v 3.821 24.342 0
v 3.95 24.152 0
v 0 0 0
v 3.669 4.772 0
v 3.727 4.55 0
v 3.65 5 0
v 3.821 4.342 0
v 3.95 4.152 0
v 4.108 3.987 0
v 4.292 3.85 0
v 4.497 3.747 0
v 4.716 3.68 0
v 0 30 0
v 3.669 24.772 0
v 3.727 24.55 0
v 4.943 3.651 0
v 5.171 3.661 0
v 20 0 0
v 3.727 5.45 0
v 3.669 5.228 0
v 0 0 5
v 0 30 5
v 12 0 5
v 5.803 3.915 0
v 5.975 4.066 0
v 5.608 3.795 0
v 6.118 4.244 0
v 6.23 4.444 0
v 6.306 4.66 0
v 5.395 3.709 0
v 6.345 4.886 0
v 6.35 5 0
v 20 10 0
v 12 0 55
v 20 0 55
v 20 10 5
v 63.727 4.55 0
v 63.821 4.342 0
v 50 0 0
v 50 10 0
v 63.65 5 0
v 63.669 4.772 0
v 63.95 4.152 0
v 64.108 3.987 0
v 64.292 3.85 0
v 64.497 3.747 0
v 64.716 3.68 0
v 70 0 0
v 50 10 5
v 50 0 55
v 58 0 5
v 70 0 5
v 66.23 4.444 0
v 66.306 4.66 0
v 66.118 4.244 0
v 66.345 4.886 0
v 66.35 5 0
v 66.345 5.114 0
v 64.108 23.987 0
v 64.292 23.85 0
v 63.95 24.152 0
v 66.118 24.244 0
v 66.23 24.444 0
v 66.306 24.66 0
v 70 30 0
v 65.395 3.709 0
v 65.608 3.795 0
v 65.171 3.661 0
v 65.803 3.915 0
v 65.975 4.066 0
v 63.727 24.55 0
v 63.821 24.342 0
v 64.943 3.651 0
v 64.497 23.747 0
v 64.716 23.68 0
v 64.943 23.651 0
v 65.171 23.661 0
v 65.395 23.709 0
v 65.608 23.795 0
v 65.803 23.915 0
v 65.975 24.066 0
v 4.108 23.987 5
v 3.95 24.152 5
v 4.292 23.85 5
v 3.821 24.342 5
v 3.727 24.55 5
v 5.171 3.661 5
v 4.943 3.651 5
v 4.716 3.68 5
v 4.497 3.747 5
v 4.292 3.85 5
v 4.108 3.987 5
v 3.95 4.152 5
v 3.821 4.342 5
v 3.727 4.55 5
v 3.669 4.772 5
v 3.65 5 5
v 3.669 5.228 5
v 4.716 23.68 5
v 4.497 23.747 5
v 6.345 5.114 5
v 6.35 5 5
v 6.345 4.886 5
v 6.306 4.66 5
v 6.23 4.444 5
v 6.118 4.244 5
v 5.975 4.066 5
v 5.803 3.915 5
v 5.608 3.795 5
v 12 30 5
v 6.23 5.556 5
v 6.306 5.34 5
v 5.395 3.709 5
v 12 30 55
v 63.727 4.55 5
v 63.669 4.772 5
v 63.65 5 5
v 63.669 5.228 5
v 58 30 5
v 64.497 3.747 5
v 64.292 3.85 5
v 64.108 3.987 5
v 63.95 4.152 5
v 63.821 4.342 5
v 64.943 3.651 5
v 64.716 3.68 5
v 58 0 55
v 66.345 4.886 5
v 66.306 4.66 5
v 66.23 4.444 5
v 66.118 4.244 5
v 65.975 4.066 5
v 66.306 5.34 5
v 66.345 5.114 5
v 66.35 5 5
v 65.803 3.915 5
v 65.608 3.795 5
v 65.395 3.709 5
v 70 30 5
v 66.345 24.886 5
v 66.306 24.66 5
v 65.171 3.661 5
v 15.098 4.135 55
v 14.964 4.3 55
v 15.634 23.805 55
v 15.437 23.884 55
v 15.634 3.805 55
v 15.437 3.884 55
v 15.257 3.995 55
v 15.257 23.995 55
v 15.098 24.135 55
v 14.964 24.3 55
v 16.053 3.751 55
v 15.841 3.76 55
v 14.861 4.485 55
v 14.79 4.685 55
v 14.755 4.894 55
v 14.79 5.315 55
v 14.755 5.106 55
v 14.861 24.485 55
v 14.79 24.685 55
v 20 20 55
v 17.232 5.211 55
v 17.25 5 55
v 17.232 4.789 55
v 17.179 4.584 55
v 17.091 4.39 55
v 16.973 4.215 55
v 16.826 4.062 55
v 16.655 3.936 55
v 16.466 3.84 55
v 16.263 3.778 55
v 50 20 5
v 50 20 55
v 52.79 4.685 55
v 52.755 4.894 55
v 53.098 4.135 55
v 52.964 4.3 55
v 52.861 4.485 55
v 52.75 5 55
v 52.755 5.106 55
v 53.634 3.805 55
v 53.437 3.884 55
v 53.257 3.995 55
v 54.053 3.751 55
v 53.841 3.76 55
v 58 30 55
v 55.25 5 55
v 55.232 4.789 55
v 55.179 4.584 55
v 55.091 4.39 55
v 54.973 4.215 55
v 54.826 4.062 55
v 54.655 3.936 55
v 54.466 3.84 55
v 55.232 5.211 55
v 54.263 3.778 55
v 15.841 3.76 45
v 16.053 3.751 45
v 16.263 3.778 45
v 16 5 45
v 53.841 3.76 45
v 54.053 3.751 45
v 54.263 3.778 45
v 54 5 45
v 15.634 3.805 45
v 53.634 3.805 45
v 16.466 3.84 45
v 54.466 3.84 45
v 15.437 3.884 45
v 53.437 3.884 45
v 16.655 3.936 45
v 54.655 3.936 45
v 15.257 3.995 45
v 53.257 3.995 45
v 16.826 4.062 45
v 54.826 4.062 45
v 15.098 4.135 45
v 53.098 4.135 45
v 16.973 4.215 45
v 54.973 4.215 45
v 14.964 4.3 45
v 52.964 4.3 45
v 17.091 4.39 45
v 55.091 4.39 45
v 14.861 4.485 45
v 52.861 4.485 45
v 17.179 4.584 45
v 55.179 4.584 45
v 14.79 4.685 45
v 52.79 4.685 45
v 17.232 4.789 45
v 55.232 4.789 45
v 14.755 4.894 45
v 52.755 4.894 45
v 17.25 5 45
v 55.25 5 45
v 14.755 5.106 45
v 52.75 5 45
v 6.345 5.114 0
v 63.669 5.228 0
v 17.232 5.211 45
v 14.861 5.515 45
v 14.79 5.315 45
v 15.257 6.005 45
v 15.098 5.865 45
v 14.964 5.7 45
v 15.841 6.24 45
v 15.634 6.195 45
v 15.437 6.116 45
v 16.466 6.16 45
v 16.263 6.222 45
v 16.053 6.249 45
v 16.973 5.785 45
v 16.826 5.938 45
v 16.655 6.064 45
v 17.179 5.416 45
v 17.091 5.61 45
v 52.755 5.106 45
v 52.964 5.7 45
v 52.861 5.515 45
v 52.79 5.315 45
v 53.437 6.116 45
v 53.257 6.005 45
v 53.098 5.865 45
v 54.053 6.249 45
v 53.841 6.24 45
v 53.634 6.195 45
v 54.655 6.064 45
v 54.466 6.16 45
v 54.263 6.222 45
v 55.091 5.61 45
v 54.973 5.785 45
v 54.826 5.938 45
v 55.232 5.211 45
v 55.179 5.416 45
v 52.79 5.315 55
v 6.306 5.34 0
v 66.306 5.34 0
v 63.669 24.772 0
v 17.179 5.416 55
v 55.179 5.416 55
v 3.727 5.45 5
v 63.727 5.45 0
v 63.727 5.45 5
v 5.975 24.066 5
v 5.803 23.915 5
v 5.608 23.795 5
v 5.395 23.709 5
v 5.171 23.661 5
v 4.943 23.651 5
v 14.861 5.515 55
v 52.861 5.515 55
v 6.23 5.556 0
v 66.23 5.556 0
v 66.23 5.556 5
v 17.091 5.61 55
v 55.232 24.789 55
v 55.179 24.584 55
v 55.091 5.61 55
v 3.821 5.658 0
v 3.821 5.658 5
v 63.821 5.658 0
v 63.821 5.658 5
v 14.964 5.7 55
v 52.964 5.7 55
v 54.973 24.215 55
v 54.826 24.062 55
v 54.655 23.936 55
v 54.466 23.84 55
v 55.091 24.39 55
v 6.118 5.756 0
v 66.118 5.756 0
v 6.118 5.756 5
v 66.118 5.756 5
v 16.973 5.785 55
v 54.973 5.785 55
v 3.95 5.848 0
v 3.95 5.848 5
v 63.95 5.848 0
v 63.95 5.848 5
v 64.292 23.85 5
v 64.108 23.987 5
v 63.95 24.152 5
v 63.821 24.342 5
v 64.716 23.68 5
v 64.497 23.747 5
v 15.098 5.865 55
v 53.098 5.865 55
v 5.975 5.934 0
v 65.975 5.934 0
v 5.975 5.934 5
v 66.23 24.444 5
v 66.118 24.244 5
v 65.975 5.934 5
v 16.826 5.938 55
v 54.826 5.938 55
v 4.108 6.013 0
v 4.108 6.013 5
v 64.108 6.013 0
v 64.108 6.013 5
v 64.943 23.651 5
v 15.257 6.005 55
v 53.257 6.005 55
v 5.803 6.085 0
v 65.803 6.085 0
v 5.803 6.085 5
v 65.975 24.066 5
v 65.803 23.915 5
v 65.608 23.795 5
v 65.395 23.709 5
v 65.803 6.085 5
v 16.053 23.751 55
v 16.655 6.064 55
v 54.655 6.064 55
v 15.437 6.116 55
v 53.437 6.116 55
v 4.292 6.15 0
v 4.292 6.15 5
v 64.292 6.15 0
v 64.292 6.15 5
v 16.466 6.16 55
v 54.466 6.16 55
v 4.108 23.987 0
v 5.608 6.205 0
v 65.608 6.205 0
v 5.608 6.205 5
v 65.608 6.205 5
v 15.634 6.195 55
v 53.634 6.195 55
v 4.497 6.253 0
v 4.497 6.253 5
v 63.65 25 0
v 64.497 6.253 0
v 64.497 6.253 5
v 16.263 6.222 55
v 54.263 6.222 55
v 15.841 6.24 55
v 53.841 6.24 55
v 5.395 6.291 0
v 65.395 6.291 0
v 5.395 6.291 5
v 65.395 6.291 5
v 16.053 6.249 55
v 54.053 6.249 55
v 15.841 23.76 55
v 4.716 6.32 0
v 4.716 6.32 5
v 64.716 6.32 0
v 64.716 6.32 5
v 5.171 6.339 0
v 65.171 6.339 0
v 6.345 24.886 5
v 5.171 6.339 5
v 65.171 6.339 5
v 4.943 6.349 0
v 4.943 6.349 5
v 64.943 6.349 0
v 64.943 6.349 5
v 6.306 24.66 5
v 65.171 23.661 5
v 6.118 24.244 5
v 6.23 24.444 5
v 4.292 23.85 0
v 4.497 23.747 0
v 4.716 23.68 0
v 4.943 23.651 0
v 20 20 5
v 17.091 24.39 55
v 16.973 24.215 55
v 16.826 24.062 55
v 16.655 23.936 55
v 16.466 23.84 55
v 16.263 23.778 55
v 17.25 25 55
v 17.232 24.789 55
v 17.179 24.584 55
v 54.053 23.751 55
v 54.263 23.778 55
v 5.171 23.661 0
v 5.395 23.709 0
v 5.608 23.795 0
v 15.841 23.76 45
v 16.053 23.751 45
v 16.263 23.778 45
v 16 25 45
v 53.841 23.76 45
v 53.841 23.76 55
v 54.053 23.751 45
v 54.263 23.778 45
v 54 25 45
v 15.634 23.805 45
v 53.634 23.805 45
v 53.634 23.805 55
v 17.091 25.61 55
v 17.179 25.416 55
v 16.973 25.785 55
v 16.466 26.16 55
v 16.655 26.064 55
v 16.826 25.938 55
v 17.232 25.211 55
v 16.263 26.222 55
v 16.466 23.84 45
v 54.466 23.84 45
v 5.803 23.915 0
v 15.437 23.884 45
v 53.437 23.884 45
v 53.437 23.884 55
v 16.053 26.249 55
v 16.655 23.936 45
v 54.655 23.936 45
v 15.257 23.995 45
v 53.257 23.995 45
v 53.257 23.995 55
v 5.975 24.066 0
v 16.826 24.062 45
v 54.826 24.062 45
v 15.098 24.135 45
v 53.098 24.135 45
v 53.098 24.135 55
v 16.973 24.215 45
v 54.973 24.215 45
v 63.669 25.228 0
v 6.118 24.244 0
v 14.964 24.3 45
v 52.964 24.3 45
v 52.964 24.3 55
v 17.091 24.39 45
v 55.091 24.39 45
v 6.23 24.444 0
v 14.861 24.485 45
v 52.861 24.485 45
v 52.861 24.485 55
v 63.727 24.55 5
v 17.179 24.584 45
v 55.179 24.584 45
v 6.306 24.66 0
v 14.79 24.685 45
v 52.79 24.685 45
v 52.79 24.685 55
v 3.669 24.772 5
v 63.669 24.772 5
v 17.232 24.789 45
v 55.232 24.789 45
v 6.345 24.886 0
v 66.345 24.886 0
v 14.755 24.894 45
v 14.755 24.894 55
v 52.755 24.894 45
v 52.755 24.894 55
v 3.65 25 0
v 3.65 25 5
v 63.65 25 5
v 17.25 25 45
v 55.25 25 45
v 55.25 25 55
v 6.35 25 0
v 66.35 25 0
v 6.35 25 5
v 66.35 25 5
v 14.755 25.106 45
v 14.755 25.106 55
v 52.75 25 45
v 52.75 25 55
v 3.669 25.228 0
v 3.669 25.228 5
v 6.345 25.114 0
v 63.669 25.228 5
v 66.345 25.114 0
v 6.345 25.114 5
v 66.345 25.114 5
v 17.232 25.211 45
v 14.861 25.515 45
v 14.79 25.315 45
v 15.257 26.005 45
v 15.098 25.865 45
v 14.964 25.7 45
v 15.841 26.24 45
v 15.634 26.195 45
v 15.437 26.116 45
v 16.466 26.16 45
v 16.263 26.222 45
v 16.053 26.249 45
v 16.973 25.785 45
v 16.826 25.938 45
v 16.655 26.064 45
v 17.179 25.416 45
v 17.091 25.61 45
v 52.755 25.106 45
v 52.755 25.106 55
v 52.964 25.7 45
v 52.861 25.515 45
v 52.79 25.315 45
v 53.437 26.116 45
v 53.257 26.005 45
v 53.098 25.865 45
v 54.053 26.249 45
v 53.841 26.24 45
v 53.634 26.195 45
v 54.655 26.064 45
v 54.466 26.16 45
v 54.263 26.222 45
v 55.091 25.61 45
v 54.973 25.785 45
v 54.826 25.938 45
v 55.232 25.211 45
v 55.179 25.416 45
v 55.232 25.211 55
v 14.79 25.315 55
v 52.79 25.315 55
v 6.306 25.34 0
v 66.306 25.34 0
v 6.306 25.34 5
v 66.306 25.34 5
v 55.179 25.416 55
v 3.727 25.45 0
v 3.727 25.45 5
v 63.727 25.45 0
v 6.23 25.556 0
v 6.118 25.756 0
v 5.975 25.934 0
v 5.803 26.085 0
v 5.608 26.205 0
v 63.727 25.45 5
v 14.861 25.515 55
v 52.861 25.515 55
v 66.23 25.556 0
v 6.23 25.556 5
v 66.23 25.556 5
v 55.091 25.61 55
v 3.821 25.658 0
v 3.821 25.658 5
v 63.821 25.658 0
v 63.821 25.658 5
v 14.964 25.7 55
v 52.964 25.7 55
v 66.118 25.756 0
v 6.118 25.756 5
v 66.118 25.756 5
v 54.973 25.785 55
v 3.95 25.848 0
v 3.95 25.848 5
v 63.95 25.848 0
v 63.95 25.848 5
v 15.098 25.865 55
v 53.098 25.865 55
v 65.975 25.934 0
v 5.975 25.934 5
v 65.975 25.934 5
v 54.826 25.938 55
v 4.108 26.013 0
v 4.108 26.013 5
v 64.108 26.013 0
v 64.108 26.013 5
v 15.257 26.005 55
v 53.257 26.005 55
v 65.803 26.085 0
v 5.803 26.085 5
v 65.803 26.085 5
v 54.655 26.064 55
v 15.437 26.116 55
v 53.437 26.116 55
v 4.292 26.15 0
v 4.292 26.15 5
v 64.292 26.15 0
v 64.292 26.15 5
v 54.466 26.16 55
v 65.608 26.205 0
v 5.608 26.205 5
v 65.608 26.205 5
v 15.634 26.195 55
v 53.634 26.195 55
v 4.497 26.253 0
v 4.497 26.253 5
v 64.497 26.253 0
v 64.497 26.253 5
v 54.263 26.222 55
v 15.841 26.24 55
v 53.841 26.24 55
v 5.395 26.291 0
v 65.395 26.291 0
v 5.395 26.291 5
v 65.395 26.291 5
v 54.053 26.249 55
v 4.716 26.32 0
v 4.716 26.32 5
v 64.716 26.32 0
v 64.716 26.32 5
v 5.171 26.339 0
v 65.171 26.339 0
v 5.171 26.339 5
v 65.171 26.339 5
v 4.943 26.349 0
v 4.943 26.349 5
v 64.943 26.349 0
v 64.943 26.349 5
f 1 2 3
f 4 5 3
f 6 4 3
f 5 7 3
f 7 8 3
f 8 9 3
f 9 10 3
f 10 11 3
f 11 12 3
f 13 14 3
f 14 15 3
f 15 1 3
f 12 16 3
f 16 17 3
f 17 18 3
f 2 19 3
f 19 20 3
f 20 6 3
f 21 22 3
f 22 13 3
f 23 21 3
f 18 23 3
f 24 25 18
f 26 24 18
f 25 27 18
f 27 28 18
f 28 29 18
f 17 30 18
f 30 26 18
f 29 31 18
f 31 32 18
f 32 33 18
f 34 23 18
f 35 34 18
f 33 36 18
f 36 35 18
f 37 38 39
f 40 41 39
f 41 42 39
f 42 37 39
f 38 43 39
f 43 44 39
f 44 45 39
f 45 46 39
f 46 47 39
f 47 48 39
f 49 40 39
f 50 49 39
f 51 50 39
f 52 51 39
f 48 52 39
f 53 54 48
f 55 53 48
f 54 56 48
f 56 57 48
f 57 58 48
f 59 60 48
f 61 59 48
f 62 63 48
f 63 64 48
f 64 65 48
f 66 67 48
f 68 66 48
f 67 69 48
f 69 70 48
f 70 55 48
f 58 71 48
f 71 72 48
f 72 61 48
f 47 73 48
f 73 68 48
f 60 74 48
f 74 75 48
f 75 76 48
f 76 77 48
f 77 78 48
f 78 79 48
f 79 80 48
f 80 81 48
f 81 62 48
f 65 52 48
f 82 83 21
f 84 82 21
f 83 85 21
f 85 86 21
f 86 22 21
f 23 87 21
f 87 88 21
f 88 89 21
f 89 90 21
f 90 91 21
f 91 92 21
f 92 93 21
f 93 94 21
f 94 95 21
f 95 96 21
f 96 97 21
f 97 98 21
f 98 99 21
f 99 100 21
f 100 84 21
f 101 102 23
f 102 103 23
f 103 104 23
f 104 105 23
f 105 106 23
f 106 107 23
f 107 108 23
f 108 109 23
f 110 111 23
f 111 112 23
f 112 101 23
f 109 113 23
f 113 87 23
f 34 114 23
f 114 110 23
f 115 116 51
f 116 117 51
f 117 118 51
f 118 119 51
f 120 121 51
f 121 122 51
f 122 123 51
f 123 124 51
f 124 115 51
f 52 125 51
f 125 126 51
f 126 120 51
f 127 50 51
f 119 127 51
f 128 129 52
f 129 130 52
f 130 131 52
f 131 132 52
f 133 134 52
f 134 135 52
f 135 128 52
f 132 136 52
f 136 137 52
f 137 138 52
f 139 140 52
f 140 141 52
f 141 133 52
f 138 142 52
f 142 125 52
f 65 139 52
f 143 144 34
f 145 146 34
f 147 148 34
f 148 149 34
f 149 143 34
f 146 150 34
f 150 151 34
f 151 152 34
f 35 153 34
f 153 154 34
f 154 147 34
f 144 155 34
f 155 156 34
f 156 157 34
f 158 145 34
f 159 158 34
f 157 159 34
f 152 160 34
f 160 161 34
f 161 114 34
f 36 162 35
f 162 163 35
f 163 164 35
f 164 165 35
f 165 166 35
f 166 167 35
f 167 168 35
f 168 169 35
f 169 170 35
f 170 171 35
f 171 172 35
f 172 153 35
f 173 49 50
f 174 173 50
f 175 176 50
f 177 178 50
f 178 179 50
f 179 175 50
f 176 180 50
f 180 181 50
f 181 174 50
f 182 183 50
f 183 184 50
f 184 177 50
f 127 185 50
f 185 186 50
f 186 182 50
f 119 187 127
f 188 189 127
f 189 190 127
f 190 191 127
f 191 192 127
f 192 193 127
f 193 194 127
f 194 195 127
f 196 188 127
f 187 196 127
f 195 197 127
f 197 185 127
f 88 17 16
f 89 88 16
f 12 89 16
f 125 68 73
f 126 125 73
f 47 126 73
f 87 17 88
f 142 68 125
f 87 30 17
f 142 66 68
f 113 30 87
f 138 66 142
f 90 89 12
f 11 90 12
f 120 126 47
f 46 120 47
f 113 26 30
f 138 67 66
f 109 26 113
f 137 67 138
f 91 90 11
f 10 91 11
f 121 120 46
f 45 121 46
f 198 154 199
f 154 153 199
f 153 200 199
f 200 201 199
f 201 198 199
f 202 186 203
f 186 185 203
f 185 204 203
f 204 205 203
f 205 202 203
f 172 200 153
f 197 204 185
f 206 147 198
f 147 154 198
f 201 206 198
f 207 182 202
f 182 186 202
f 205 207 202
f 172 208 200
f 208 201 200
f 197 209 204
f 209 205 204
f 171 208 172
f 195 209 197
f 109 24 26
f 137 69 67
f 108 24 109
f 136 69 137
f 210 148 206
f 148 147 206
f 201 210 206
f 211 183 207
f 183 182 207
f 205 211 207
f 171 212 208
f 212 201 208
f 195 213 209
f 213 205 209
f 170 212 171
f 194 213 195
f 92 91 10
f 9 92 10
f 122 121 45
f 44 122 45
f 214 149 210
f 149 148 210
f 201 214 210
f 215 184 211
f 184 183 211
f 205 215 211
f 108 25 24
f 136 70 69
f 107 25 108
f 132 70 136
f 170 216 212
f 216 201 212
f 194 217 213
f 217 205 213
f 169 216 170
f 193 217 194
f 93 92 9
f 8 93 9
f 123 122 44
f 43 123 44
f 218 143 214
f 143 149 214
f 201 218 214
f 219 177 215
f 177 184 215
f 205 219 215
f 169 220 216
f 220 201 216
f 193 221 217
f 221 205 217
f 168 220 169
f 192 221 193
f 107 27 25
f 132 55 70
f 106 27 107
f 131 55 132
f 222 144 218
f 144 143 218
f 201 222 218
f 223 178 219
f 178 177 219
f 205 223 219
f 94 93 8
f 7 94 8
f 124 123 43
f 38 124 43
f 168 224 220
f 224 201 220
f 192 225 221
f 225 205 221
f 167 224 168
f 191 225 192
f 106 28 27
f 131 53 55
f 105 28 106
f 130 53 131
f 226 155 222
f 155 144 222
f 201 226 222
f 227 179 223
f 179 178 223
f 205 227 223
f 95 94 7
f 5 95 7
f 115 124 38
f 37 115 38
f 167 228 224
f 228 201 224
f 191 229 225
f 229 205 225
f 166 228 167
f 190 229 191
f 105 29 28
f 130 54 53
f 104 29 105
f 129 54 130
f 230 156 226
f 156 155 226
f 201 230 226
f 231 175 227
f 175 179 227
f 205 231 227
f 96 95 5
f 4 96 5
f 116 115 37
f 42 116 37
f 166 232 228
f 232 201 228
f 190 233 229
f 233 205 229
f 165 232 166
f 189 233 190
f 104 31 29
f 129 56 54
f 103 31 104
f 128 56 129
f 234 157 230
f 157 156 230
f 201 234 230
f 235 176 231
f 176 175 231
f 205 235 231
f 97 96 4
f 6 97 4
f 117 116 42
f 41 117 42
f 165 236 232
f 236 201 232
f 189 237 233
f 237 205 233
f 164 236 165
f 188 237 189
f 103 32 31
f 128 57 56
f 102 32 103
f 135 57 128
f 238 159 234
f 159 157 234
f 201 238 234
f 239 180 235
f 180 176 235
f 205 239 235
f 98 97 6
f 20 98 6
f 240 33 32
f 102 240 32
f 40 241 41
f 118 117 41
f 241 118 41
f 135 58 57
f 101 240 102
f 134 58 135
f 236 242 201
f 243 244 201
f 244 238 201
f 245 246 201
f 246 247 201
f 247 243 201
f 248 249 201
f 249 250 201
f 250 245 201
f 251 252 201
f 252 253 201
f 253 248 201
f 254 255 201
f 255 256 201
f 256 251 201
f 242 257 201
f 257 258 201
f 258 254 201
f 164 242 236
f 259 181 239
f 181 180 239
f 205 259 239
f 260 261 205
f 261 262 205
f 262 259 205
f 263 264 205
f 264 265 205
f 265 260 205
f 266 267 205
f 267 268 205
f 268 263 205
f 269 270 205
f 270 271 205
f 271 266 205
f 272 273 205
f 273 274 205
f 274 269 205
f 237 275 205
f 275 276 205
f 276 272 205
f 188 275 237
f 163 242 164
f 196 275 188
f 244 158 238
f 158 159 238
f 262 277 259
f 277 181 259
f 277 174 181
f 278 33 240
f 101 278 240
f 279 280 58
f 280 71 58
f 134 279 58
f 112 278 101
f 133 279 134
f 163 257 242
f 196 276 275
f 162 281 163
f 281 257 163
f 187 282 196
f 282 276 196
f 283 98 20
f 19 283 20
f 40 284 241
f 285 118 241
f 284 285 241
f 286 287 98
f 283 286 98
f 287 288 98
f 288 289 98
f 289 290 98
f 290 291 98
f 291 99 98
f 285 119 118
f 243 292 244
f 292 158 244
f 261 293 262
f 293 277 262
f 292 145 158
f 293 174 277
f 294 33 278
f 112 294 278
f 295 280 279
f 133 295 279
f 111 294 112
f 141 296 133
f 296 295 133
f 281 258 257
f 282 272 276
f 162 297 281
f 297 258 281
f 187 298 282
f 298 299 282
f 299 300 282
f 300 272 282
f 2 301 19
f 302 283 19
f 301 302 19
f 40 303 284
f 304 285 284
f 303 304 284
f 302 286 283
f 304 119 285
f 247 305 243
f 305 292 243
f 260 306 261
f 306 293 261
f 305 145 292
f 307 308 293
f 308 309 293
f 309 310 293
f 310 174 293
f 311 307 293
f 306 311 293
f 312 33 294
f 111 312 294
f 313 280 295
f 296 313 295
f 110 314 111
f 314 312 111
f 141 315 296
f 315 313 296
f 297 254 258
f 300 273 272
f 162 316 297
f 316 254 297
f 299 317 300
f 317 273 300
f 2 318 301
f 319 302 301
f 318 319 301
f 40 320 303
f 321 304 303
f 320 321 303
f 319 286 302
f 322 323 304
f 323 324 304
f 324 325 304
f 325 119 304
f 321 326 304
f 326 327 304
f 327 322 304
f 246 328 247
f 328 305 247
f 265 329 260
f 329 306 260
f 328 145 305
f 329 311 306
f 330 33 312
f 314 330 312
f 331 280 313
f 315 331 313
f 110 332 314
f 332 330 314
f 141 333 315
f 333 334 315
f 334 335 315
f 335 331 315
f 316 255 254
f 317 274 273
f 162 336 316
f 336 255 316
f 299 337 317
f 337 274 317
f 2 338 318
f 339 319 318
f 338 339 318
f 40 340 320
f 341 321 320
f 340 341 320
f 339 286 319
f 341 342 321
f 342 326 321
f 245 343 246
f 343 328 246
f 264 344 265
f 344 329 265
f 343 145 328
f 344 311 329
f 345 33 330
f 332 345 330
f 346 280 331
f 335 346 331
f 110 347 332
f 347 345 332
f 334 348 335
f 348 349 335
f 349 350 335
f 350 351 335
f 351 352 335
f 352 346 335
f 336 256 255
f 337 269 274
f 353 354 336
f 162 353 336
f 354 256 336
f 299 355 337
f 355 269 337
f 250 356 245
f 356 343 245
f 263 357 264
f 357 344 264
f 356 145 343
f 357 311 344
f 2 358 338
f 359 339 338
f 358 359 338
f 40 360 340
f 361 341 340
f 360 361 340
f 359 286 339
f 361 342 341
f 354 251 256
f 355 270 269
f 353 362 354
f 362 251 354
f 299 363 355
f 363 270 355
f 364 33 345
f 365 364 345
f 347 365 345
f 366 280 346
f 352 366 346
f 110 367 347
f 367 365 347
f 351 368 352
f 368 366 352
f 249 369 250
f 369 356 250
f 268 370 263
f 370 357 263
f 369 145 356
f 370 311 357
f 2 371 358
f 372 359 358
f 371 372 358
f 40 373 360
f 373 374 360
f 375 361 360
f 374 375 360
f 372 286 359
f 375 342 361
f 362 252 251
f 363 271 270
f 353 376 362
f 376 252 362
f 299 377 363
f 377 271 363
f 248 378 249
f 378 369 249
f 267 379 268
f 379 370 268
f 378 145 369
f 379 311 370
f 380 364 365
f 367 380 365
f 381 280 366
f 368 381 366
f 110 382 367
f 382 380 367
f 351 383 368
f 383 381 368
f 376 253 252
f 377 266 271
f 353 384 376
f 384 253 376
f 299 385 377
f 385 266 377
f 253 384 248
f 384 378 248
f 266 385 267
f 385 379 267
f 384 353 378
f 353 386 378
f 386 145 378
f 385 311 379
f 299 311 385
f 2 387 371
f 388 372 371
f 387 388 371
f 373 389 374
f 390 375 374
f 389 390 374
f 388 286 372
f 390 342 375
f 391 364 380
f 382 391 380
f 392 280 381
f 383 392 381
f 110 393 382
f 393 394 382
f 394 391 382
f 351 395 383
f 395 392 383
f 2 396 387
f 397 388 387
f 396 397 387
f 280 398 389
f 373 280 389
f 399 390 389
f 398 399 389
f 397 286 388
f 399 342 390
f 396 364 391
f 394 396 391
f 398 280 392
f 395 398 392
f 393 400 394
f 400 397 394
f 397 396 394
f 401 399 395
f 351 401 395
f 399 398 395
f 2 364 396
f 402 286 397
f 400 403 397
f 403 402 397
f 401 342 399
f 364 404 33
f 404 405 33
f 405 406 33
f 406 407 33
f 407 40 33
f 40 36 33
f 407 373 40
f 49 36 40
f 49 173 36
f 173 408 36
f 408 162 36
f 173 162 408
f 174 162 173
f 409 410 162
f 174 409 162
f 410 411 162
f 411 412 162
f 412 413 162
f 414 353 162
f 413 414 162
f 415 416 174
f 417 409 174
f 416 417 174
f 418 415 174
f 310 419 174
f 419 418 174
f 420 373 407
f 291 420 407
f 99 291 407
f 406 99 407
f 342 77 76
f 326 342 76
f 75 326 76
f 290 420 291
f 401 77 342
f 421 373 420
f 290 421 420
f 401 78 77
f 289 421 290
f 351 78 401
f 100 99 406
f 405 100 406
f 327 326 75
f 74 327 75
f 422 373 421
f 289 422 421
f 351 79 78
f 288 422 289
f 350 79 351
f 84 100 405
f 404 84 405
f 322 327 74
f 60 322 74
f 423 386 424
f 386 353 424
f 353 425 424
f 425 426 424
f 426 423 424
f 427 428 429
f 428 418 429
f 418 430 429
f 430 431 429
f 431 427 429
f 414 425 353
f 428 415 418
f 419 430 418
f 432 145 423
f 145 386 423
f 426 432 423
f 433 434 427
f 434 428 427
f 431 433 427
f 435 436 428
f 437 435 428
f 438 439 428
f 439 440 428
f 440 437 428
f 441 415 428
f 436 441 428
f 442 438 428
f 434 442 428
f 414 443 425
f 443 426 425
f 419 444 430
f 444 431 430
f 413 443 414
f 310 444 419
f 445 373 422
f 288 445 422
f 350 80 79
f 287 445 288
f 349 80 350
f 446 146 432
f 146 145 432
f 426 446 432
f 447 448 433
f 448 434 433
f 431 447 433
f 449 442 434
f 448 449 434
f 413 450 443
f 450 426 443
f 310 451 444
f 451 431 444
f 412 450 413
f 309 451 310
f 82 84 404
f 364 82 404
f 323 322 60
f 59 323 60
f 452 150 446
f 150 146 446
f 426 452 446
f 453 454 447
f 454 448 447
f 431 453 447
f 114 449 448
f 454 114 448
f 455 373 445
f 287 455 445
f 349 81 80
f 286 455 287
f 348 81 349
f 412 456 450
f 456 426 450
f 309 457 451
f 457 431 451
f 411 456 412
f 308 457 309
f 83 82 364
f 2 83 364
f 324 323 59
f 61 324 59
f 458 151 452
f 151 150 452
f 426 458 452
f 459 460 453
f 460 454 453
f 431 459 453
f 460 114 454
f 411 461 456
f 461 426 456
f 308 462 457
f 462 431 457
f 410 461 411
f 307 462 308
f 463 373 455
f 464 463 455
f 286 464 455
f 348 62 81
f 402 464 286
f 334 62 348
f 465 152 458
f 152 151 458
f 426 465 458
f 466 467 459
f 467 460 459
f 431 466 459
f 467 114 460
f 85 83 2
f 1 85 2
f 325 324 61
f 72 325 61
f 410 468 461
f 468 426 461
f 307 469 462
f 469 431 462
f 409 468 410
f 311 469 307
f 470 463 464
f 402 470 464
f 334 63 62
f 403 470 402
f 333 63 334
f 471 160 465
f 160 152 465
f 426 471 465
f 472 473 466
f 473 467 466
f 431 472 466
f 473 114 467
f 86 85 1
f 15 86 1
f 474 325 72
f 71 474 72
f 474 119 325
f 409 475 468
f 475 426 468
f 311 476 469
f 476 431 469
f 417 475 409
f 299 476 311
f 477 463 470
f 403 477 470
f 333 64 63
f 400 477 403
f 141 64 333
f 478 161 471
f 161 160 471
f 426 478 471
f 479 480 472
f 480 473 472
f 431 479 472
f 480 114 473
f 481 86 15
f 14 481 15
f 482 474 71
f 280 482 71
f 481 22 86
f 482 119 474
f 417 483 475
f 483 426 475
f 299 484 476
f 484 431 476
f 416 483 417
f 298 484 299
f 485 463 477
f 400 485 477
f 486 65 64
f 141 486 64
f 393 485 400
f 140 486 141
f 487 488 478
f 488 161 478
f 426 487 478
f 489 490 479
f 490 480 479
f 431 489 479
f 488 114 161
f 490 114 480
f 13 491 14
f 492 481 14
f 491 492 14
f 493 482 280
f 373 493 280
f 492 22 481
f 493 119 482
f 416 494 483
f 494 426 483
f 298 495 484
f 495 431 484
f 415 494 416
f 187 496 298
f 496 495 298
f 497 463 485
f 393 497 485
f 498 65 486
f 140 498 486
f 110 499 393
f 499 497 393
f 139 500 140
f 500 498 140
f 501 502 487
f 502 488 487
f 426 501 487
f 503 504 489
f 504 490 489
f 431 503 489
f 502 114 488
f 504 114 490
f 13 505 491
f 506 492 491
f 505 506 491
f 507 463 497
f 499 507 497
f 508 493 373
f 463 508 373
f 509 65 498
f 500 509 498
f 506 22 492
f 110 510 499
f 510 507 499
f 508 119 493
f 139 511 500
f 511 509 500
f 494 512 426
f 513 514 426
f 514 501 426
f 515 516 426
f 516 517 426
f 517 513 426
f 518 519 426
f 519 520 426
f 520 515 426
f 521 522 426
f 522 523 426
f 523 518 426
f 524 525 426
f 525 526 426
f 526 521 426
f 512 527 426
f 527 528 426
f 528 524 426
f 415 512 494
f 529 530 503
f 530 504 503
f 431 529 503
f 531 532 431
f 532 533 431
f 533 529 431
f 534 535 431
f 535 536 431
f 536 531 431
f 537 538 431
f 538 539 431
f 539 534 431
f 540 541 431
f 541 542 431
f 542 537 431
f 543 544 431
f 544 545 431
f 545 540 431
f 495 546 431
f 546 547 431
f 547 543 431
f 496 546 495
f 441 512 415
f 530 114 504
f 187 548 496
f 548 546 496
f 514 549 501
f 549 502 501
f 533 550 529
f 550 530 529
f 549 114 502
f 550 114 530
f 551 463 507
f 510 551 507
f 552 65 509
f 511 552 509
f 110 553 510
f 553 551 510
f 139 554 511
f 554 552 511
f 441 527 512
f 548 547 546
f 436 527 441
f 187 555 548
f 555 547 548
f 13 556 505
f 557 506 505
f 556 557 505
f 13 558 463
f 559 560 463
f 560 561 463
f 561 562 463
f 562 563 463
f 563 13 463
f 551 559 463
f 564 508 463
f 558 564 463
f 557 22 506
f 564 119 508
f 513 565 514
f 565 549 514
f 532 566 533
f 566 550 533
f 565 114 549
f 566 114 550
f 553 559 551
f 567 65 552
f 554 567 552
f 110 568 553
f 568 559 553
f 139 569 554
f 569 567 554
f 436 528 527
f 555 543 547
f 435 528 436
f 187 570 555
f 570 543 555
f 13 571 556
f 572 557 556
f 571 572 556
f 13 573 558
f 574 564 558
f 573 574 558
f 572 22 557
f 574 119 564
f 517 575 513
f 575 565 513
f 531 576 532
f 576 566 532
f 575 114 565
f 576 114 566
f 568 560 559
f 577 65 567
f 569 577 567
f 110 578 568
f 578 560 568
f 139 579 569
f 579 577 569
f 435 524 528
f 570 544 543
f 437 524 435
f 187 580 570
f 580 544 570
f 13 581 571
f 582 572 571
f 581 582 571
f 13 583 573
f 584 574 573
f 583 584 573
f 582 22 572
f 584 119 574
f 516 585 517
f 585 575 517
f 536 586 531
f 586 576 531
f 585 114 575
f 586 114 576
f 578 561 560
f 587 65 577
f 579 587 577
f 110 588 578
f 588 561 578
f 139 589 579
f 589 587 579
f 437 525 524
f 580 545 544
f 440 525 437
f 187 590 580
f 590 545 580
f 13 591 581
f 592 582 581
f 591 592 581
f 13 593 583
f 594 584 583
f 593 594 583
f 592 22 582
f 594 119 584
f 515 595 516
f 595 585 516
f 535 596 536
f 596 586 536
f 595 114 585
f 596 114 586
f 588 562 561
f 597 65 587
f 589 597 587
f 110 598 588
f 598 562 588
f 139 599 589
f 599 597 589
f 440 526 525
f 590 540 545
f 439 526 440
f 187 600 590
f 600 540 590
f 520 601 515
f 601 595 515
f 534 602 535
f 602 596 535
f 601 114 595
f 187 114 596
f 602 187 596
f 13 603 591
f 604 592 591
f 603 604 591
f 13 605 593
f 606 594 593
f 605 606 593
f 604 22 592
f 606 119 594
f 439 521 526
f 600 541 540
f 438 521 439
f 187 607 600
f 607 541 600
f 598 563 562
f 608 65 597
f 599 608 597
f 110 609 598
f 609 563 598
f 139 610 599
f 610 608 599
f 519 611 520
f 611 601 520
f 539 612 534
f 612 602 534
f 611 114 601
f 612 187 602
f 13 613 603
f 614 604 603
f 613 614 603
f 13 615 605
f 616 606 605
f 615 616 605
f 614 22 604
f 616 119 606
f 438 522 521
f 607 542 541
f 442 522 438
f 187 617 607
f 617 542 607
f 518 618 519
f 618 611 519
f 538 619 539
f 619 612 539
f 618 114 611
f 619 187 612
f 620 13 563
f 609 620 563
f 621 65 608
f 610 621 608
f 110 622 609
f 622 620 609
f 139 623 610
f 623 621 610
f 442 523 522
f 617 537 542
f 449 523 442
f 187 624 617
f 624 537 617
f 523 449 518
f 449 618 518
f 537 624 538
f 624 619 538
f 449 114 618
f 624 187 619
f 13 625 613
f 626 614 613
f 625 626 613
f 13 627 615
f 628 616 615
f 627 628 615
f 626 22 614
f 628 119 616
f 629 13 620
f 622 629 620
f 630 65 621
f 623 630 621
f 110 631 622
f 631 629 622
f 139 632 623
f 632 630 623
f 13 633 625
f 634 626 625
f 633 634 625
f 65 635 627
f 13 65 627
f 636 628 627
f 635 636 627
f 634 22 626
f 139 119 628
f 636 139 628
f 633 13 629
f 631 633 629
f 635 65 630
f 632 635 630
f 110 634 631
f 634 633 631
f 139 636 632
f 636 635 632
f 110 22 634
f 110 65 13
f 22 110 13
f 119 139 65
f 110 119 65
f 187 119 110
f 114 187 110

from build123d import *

# Parameters (mm, degrees)
SKETCH_1_R               = 1.35
EXTRUDE_1_DEPTH          = 5
EXTRUDE_2_DEPTH          = 50
SKETCH_3_R               = 1.25
CUT_EXTRUDE_1_DEPTH      = 10
MIRROR_2_COPY_1_SKETCH_R = 1.25
MIRROR_2_COPY_1_DEPTH    = 10
MIRROR_2_COPY_2_SKETCH_R = 1.25
MIRROR_2_COPY_2_DEPTH    = 10


with BuildPart() as part:
    # 草圖1 → 填料-伸長1 (new body)
    with BuildSketch(Plane.XY):
        Polygon((20, 0), (20, 10), (50, 10), (50, 0), (70, 0), (70, 30), (0, 30), (0, 0), align=None)
        with Locations((5, 25)):
            Circle(SKETCH_1_R, mode=Mode.SUBTRACT)
        with Locations((5, 5)):
            Circle(SKETCH_1_R, mode=Mode.SUBTRACT)
        with Locations((65, 25)):
            Circle(SKETCH_1_R, mode=Mode.SUBTRACT)
        with Locations((65, 5)):
            Circle(SKETCH_1_R, mode=Mode.SUBTRACT)
    extrude(amount=EXTRUDE_1_DEPTH)

    # 草圖2 → 填料-伸長2 (add)
    with BuildSketch(Plane.XY.offset(5)):
        Polygon((20, 20), (20, 0), (12, 0), (12, 30), (58, 30), (58, 0), (50, 0), (50, 20), align=None)
    extrude(amount=EXTRUDE_2_DEPTH)

    # 草圖3 → 除料-伸長1 (cut)
    with BuildSketch(Plane.XY.offset(55)):
        with Locations((16, 25)):
            Circle(SKETCH_3_R)
    cut_extrude_1 = extrude(amount=-CUT_EXTRUDE_1_DEPTH, mode=Mode.SUBTRACT)

    # 鏡射1: 除料-伸長1 across plane
    add(cut_extrude_1.mirror(Plane(origin=(35, 0, 0), x_dir=(0, 0, 1), z_dir=(1, 0, 0))), mode=Mode.SUBTRACT)

    # 鏡射2 copy 1 sketch → 鏡射2 copy 1 (cut)
    with BuildSketch(Plane(origin=(70, 30, 55), x_dir=(-1, 0, 0), z_dir=(0, 0, 1))):
        with Locations((16, 25)):
            Circle(MIRROR_2_COPY_1_SKETCH_R)
    extrude(amount=-MIRROR_2_COPY_1_DEPTH, mode=Mode.SUBTRACT)

    # 鏡射2 copy 2 sketch → 鏡射2 copy 2 (cut)
    with BuildSketch(Plane(origin=(0, 30, 55), x_dir=(1, 0, 0), z_dir=(0, 0, 1))):
        with Locations((16, -25)):
            Circle(MIRROR_2_COPY_2_SKETCH_R)
    extrude(amount=-MIRROR_2_COPY_2_DEPTH, mode=Mode.SUBTRACT)


solid = part.part
